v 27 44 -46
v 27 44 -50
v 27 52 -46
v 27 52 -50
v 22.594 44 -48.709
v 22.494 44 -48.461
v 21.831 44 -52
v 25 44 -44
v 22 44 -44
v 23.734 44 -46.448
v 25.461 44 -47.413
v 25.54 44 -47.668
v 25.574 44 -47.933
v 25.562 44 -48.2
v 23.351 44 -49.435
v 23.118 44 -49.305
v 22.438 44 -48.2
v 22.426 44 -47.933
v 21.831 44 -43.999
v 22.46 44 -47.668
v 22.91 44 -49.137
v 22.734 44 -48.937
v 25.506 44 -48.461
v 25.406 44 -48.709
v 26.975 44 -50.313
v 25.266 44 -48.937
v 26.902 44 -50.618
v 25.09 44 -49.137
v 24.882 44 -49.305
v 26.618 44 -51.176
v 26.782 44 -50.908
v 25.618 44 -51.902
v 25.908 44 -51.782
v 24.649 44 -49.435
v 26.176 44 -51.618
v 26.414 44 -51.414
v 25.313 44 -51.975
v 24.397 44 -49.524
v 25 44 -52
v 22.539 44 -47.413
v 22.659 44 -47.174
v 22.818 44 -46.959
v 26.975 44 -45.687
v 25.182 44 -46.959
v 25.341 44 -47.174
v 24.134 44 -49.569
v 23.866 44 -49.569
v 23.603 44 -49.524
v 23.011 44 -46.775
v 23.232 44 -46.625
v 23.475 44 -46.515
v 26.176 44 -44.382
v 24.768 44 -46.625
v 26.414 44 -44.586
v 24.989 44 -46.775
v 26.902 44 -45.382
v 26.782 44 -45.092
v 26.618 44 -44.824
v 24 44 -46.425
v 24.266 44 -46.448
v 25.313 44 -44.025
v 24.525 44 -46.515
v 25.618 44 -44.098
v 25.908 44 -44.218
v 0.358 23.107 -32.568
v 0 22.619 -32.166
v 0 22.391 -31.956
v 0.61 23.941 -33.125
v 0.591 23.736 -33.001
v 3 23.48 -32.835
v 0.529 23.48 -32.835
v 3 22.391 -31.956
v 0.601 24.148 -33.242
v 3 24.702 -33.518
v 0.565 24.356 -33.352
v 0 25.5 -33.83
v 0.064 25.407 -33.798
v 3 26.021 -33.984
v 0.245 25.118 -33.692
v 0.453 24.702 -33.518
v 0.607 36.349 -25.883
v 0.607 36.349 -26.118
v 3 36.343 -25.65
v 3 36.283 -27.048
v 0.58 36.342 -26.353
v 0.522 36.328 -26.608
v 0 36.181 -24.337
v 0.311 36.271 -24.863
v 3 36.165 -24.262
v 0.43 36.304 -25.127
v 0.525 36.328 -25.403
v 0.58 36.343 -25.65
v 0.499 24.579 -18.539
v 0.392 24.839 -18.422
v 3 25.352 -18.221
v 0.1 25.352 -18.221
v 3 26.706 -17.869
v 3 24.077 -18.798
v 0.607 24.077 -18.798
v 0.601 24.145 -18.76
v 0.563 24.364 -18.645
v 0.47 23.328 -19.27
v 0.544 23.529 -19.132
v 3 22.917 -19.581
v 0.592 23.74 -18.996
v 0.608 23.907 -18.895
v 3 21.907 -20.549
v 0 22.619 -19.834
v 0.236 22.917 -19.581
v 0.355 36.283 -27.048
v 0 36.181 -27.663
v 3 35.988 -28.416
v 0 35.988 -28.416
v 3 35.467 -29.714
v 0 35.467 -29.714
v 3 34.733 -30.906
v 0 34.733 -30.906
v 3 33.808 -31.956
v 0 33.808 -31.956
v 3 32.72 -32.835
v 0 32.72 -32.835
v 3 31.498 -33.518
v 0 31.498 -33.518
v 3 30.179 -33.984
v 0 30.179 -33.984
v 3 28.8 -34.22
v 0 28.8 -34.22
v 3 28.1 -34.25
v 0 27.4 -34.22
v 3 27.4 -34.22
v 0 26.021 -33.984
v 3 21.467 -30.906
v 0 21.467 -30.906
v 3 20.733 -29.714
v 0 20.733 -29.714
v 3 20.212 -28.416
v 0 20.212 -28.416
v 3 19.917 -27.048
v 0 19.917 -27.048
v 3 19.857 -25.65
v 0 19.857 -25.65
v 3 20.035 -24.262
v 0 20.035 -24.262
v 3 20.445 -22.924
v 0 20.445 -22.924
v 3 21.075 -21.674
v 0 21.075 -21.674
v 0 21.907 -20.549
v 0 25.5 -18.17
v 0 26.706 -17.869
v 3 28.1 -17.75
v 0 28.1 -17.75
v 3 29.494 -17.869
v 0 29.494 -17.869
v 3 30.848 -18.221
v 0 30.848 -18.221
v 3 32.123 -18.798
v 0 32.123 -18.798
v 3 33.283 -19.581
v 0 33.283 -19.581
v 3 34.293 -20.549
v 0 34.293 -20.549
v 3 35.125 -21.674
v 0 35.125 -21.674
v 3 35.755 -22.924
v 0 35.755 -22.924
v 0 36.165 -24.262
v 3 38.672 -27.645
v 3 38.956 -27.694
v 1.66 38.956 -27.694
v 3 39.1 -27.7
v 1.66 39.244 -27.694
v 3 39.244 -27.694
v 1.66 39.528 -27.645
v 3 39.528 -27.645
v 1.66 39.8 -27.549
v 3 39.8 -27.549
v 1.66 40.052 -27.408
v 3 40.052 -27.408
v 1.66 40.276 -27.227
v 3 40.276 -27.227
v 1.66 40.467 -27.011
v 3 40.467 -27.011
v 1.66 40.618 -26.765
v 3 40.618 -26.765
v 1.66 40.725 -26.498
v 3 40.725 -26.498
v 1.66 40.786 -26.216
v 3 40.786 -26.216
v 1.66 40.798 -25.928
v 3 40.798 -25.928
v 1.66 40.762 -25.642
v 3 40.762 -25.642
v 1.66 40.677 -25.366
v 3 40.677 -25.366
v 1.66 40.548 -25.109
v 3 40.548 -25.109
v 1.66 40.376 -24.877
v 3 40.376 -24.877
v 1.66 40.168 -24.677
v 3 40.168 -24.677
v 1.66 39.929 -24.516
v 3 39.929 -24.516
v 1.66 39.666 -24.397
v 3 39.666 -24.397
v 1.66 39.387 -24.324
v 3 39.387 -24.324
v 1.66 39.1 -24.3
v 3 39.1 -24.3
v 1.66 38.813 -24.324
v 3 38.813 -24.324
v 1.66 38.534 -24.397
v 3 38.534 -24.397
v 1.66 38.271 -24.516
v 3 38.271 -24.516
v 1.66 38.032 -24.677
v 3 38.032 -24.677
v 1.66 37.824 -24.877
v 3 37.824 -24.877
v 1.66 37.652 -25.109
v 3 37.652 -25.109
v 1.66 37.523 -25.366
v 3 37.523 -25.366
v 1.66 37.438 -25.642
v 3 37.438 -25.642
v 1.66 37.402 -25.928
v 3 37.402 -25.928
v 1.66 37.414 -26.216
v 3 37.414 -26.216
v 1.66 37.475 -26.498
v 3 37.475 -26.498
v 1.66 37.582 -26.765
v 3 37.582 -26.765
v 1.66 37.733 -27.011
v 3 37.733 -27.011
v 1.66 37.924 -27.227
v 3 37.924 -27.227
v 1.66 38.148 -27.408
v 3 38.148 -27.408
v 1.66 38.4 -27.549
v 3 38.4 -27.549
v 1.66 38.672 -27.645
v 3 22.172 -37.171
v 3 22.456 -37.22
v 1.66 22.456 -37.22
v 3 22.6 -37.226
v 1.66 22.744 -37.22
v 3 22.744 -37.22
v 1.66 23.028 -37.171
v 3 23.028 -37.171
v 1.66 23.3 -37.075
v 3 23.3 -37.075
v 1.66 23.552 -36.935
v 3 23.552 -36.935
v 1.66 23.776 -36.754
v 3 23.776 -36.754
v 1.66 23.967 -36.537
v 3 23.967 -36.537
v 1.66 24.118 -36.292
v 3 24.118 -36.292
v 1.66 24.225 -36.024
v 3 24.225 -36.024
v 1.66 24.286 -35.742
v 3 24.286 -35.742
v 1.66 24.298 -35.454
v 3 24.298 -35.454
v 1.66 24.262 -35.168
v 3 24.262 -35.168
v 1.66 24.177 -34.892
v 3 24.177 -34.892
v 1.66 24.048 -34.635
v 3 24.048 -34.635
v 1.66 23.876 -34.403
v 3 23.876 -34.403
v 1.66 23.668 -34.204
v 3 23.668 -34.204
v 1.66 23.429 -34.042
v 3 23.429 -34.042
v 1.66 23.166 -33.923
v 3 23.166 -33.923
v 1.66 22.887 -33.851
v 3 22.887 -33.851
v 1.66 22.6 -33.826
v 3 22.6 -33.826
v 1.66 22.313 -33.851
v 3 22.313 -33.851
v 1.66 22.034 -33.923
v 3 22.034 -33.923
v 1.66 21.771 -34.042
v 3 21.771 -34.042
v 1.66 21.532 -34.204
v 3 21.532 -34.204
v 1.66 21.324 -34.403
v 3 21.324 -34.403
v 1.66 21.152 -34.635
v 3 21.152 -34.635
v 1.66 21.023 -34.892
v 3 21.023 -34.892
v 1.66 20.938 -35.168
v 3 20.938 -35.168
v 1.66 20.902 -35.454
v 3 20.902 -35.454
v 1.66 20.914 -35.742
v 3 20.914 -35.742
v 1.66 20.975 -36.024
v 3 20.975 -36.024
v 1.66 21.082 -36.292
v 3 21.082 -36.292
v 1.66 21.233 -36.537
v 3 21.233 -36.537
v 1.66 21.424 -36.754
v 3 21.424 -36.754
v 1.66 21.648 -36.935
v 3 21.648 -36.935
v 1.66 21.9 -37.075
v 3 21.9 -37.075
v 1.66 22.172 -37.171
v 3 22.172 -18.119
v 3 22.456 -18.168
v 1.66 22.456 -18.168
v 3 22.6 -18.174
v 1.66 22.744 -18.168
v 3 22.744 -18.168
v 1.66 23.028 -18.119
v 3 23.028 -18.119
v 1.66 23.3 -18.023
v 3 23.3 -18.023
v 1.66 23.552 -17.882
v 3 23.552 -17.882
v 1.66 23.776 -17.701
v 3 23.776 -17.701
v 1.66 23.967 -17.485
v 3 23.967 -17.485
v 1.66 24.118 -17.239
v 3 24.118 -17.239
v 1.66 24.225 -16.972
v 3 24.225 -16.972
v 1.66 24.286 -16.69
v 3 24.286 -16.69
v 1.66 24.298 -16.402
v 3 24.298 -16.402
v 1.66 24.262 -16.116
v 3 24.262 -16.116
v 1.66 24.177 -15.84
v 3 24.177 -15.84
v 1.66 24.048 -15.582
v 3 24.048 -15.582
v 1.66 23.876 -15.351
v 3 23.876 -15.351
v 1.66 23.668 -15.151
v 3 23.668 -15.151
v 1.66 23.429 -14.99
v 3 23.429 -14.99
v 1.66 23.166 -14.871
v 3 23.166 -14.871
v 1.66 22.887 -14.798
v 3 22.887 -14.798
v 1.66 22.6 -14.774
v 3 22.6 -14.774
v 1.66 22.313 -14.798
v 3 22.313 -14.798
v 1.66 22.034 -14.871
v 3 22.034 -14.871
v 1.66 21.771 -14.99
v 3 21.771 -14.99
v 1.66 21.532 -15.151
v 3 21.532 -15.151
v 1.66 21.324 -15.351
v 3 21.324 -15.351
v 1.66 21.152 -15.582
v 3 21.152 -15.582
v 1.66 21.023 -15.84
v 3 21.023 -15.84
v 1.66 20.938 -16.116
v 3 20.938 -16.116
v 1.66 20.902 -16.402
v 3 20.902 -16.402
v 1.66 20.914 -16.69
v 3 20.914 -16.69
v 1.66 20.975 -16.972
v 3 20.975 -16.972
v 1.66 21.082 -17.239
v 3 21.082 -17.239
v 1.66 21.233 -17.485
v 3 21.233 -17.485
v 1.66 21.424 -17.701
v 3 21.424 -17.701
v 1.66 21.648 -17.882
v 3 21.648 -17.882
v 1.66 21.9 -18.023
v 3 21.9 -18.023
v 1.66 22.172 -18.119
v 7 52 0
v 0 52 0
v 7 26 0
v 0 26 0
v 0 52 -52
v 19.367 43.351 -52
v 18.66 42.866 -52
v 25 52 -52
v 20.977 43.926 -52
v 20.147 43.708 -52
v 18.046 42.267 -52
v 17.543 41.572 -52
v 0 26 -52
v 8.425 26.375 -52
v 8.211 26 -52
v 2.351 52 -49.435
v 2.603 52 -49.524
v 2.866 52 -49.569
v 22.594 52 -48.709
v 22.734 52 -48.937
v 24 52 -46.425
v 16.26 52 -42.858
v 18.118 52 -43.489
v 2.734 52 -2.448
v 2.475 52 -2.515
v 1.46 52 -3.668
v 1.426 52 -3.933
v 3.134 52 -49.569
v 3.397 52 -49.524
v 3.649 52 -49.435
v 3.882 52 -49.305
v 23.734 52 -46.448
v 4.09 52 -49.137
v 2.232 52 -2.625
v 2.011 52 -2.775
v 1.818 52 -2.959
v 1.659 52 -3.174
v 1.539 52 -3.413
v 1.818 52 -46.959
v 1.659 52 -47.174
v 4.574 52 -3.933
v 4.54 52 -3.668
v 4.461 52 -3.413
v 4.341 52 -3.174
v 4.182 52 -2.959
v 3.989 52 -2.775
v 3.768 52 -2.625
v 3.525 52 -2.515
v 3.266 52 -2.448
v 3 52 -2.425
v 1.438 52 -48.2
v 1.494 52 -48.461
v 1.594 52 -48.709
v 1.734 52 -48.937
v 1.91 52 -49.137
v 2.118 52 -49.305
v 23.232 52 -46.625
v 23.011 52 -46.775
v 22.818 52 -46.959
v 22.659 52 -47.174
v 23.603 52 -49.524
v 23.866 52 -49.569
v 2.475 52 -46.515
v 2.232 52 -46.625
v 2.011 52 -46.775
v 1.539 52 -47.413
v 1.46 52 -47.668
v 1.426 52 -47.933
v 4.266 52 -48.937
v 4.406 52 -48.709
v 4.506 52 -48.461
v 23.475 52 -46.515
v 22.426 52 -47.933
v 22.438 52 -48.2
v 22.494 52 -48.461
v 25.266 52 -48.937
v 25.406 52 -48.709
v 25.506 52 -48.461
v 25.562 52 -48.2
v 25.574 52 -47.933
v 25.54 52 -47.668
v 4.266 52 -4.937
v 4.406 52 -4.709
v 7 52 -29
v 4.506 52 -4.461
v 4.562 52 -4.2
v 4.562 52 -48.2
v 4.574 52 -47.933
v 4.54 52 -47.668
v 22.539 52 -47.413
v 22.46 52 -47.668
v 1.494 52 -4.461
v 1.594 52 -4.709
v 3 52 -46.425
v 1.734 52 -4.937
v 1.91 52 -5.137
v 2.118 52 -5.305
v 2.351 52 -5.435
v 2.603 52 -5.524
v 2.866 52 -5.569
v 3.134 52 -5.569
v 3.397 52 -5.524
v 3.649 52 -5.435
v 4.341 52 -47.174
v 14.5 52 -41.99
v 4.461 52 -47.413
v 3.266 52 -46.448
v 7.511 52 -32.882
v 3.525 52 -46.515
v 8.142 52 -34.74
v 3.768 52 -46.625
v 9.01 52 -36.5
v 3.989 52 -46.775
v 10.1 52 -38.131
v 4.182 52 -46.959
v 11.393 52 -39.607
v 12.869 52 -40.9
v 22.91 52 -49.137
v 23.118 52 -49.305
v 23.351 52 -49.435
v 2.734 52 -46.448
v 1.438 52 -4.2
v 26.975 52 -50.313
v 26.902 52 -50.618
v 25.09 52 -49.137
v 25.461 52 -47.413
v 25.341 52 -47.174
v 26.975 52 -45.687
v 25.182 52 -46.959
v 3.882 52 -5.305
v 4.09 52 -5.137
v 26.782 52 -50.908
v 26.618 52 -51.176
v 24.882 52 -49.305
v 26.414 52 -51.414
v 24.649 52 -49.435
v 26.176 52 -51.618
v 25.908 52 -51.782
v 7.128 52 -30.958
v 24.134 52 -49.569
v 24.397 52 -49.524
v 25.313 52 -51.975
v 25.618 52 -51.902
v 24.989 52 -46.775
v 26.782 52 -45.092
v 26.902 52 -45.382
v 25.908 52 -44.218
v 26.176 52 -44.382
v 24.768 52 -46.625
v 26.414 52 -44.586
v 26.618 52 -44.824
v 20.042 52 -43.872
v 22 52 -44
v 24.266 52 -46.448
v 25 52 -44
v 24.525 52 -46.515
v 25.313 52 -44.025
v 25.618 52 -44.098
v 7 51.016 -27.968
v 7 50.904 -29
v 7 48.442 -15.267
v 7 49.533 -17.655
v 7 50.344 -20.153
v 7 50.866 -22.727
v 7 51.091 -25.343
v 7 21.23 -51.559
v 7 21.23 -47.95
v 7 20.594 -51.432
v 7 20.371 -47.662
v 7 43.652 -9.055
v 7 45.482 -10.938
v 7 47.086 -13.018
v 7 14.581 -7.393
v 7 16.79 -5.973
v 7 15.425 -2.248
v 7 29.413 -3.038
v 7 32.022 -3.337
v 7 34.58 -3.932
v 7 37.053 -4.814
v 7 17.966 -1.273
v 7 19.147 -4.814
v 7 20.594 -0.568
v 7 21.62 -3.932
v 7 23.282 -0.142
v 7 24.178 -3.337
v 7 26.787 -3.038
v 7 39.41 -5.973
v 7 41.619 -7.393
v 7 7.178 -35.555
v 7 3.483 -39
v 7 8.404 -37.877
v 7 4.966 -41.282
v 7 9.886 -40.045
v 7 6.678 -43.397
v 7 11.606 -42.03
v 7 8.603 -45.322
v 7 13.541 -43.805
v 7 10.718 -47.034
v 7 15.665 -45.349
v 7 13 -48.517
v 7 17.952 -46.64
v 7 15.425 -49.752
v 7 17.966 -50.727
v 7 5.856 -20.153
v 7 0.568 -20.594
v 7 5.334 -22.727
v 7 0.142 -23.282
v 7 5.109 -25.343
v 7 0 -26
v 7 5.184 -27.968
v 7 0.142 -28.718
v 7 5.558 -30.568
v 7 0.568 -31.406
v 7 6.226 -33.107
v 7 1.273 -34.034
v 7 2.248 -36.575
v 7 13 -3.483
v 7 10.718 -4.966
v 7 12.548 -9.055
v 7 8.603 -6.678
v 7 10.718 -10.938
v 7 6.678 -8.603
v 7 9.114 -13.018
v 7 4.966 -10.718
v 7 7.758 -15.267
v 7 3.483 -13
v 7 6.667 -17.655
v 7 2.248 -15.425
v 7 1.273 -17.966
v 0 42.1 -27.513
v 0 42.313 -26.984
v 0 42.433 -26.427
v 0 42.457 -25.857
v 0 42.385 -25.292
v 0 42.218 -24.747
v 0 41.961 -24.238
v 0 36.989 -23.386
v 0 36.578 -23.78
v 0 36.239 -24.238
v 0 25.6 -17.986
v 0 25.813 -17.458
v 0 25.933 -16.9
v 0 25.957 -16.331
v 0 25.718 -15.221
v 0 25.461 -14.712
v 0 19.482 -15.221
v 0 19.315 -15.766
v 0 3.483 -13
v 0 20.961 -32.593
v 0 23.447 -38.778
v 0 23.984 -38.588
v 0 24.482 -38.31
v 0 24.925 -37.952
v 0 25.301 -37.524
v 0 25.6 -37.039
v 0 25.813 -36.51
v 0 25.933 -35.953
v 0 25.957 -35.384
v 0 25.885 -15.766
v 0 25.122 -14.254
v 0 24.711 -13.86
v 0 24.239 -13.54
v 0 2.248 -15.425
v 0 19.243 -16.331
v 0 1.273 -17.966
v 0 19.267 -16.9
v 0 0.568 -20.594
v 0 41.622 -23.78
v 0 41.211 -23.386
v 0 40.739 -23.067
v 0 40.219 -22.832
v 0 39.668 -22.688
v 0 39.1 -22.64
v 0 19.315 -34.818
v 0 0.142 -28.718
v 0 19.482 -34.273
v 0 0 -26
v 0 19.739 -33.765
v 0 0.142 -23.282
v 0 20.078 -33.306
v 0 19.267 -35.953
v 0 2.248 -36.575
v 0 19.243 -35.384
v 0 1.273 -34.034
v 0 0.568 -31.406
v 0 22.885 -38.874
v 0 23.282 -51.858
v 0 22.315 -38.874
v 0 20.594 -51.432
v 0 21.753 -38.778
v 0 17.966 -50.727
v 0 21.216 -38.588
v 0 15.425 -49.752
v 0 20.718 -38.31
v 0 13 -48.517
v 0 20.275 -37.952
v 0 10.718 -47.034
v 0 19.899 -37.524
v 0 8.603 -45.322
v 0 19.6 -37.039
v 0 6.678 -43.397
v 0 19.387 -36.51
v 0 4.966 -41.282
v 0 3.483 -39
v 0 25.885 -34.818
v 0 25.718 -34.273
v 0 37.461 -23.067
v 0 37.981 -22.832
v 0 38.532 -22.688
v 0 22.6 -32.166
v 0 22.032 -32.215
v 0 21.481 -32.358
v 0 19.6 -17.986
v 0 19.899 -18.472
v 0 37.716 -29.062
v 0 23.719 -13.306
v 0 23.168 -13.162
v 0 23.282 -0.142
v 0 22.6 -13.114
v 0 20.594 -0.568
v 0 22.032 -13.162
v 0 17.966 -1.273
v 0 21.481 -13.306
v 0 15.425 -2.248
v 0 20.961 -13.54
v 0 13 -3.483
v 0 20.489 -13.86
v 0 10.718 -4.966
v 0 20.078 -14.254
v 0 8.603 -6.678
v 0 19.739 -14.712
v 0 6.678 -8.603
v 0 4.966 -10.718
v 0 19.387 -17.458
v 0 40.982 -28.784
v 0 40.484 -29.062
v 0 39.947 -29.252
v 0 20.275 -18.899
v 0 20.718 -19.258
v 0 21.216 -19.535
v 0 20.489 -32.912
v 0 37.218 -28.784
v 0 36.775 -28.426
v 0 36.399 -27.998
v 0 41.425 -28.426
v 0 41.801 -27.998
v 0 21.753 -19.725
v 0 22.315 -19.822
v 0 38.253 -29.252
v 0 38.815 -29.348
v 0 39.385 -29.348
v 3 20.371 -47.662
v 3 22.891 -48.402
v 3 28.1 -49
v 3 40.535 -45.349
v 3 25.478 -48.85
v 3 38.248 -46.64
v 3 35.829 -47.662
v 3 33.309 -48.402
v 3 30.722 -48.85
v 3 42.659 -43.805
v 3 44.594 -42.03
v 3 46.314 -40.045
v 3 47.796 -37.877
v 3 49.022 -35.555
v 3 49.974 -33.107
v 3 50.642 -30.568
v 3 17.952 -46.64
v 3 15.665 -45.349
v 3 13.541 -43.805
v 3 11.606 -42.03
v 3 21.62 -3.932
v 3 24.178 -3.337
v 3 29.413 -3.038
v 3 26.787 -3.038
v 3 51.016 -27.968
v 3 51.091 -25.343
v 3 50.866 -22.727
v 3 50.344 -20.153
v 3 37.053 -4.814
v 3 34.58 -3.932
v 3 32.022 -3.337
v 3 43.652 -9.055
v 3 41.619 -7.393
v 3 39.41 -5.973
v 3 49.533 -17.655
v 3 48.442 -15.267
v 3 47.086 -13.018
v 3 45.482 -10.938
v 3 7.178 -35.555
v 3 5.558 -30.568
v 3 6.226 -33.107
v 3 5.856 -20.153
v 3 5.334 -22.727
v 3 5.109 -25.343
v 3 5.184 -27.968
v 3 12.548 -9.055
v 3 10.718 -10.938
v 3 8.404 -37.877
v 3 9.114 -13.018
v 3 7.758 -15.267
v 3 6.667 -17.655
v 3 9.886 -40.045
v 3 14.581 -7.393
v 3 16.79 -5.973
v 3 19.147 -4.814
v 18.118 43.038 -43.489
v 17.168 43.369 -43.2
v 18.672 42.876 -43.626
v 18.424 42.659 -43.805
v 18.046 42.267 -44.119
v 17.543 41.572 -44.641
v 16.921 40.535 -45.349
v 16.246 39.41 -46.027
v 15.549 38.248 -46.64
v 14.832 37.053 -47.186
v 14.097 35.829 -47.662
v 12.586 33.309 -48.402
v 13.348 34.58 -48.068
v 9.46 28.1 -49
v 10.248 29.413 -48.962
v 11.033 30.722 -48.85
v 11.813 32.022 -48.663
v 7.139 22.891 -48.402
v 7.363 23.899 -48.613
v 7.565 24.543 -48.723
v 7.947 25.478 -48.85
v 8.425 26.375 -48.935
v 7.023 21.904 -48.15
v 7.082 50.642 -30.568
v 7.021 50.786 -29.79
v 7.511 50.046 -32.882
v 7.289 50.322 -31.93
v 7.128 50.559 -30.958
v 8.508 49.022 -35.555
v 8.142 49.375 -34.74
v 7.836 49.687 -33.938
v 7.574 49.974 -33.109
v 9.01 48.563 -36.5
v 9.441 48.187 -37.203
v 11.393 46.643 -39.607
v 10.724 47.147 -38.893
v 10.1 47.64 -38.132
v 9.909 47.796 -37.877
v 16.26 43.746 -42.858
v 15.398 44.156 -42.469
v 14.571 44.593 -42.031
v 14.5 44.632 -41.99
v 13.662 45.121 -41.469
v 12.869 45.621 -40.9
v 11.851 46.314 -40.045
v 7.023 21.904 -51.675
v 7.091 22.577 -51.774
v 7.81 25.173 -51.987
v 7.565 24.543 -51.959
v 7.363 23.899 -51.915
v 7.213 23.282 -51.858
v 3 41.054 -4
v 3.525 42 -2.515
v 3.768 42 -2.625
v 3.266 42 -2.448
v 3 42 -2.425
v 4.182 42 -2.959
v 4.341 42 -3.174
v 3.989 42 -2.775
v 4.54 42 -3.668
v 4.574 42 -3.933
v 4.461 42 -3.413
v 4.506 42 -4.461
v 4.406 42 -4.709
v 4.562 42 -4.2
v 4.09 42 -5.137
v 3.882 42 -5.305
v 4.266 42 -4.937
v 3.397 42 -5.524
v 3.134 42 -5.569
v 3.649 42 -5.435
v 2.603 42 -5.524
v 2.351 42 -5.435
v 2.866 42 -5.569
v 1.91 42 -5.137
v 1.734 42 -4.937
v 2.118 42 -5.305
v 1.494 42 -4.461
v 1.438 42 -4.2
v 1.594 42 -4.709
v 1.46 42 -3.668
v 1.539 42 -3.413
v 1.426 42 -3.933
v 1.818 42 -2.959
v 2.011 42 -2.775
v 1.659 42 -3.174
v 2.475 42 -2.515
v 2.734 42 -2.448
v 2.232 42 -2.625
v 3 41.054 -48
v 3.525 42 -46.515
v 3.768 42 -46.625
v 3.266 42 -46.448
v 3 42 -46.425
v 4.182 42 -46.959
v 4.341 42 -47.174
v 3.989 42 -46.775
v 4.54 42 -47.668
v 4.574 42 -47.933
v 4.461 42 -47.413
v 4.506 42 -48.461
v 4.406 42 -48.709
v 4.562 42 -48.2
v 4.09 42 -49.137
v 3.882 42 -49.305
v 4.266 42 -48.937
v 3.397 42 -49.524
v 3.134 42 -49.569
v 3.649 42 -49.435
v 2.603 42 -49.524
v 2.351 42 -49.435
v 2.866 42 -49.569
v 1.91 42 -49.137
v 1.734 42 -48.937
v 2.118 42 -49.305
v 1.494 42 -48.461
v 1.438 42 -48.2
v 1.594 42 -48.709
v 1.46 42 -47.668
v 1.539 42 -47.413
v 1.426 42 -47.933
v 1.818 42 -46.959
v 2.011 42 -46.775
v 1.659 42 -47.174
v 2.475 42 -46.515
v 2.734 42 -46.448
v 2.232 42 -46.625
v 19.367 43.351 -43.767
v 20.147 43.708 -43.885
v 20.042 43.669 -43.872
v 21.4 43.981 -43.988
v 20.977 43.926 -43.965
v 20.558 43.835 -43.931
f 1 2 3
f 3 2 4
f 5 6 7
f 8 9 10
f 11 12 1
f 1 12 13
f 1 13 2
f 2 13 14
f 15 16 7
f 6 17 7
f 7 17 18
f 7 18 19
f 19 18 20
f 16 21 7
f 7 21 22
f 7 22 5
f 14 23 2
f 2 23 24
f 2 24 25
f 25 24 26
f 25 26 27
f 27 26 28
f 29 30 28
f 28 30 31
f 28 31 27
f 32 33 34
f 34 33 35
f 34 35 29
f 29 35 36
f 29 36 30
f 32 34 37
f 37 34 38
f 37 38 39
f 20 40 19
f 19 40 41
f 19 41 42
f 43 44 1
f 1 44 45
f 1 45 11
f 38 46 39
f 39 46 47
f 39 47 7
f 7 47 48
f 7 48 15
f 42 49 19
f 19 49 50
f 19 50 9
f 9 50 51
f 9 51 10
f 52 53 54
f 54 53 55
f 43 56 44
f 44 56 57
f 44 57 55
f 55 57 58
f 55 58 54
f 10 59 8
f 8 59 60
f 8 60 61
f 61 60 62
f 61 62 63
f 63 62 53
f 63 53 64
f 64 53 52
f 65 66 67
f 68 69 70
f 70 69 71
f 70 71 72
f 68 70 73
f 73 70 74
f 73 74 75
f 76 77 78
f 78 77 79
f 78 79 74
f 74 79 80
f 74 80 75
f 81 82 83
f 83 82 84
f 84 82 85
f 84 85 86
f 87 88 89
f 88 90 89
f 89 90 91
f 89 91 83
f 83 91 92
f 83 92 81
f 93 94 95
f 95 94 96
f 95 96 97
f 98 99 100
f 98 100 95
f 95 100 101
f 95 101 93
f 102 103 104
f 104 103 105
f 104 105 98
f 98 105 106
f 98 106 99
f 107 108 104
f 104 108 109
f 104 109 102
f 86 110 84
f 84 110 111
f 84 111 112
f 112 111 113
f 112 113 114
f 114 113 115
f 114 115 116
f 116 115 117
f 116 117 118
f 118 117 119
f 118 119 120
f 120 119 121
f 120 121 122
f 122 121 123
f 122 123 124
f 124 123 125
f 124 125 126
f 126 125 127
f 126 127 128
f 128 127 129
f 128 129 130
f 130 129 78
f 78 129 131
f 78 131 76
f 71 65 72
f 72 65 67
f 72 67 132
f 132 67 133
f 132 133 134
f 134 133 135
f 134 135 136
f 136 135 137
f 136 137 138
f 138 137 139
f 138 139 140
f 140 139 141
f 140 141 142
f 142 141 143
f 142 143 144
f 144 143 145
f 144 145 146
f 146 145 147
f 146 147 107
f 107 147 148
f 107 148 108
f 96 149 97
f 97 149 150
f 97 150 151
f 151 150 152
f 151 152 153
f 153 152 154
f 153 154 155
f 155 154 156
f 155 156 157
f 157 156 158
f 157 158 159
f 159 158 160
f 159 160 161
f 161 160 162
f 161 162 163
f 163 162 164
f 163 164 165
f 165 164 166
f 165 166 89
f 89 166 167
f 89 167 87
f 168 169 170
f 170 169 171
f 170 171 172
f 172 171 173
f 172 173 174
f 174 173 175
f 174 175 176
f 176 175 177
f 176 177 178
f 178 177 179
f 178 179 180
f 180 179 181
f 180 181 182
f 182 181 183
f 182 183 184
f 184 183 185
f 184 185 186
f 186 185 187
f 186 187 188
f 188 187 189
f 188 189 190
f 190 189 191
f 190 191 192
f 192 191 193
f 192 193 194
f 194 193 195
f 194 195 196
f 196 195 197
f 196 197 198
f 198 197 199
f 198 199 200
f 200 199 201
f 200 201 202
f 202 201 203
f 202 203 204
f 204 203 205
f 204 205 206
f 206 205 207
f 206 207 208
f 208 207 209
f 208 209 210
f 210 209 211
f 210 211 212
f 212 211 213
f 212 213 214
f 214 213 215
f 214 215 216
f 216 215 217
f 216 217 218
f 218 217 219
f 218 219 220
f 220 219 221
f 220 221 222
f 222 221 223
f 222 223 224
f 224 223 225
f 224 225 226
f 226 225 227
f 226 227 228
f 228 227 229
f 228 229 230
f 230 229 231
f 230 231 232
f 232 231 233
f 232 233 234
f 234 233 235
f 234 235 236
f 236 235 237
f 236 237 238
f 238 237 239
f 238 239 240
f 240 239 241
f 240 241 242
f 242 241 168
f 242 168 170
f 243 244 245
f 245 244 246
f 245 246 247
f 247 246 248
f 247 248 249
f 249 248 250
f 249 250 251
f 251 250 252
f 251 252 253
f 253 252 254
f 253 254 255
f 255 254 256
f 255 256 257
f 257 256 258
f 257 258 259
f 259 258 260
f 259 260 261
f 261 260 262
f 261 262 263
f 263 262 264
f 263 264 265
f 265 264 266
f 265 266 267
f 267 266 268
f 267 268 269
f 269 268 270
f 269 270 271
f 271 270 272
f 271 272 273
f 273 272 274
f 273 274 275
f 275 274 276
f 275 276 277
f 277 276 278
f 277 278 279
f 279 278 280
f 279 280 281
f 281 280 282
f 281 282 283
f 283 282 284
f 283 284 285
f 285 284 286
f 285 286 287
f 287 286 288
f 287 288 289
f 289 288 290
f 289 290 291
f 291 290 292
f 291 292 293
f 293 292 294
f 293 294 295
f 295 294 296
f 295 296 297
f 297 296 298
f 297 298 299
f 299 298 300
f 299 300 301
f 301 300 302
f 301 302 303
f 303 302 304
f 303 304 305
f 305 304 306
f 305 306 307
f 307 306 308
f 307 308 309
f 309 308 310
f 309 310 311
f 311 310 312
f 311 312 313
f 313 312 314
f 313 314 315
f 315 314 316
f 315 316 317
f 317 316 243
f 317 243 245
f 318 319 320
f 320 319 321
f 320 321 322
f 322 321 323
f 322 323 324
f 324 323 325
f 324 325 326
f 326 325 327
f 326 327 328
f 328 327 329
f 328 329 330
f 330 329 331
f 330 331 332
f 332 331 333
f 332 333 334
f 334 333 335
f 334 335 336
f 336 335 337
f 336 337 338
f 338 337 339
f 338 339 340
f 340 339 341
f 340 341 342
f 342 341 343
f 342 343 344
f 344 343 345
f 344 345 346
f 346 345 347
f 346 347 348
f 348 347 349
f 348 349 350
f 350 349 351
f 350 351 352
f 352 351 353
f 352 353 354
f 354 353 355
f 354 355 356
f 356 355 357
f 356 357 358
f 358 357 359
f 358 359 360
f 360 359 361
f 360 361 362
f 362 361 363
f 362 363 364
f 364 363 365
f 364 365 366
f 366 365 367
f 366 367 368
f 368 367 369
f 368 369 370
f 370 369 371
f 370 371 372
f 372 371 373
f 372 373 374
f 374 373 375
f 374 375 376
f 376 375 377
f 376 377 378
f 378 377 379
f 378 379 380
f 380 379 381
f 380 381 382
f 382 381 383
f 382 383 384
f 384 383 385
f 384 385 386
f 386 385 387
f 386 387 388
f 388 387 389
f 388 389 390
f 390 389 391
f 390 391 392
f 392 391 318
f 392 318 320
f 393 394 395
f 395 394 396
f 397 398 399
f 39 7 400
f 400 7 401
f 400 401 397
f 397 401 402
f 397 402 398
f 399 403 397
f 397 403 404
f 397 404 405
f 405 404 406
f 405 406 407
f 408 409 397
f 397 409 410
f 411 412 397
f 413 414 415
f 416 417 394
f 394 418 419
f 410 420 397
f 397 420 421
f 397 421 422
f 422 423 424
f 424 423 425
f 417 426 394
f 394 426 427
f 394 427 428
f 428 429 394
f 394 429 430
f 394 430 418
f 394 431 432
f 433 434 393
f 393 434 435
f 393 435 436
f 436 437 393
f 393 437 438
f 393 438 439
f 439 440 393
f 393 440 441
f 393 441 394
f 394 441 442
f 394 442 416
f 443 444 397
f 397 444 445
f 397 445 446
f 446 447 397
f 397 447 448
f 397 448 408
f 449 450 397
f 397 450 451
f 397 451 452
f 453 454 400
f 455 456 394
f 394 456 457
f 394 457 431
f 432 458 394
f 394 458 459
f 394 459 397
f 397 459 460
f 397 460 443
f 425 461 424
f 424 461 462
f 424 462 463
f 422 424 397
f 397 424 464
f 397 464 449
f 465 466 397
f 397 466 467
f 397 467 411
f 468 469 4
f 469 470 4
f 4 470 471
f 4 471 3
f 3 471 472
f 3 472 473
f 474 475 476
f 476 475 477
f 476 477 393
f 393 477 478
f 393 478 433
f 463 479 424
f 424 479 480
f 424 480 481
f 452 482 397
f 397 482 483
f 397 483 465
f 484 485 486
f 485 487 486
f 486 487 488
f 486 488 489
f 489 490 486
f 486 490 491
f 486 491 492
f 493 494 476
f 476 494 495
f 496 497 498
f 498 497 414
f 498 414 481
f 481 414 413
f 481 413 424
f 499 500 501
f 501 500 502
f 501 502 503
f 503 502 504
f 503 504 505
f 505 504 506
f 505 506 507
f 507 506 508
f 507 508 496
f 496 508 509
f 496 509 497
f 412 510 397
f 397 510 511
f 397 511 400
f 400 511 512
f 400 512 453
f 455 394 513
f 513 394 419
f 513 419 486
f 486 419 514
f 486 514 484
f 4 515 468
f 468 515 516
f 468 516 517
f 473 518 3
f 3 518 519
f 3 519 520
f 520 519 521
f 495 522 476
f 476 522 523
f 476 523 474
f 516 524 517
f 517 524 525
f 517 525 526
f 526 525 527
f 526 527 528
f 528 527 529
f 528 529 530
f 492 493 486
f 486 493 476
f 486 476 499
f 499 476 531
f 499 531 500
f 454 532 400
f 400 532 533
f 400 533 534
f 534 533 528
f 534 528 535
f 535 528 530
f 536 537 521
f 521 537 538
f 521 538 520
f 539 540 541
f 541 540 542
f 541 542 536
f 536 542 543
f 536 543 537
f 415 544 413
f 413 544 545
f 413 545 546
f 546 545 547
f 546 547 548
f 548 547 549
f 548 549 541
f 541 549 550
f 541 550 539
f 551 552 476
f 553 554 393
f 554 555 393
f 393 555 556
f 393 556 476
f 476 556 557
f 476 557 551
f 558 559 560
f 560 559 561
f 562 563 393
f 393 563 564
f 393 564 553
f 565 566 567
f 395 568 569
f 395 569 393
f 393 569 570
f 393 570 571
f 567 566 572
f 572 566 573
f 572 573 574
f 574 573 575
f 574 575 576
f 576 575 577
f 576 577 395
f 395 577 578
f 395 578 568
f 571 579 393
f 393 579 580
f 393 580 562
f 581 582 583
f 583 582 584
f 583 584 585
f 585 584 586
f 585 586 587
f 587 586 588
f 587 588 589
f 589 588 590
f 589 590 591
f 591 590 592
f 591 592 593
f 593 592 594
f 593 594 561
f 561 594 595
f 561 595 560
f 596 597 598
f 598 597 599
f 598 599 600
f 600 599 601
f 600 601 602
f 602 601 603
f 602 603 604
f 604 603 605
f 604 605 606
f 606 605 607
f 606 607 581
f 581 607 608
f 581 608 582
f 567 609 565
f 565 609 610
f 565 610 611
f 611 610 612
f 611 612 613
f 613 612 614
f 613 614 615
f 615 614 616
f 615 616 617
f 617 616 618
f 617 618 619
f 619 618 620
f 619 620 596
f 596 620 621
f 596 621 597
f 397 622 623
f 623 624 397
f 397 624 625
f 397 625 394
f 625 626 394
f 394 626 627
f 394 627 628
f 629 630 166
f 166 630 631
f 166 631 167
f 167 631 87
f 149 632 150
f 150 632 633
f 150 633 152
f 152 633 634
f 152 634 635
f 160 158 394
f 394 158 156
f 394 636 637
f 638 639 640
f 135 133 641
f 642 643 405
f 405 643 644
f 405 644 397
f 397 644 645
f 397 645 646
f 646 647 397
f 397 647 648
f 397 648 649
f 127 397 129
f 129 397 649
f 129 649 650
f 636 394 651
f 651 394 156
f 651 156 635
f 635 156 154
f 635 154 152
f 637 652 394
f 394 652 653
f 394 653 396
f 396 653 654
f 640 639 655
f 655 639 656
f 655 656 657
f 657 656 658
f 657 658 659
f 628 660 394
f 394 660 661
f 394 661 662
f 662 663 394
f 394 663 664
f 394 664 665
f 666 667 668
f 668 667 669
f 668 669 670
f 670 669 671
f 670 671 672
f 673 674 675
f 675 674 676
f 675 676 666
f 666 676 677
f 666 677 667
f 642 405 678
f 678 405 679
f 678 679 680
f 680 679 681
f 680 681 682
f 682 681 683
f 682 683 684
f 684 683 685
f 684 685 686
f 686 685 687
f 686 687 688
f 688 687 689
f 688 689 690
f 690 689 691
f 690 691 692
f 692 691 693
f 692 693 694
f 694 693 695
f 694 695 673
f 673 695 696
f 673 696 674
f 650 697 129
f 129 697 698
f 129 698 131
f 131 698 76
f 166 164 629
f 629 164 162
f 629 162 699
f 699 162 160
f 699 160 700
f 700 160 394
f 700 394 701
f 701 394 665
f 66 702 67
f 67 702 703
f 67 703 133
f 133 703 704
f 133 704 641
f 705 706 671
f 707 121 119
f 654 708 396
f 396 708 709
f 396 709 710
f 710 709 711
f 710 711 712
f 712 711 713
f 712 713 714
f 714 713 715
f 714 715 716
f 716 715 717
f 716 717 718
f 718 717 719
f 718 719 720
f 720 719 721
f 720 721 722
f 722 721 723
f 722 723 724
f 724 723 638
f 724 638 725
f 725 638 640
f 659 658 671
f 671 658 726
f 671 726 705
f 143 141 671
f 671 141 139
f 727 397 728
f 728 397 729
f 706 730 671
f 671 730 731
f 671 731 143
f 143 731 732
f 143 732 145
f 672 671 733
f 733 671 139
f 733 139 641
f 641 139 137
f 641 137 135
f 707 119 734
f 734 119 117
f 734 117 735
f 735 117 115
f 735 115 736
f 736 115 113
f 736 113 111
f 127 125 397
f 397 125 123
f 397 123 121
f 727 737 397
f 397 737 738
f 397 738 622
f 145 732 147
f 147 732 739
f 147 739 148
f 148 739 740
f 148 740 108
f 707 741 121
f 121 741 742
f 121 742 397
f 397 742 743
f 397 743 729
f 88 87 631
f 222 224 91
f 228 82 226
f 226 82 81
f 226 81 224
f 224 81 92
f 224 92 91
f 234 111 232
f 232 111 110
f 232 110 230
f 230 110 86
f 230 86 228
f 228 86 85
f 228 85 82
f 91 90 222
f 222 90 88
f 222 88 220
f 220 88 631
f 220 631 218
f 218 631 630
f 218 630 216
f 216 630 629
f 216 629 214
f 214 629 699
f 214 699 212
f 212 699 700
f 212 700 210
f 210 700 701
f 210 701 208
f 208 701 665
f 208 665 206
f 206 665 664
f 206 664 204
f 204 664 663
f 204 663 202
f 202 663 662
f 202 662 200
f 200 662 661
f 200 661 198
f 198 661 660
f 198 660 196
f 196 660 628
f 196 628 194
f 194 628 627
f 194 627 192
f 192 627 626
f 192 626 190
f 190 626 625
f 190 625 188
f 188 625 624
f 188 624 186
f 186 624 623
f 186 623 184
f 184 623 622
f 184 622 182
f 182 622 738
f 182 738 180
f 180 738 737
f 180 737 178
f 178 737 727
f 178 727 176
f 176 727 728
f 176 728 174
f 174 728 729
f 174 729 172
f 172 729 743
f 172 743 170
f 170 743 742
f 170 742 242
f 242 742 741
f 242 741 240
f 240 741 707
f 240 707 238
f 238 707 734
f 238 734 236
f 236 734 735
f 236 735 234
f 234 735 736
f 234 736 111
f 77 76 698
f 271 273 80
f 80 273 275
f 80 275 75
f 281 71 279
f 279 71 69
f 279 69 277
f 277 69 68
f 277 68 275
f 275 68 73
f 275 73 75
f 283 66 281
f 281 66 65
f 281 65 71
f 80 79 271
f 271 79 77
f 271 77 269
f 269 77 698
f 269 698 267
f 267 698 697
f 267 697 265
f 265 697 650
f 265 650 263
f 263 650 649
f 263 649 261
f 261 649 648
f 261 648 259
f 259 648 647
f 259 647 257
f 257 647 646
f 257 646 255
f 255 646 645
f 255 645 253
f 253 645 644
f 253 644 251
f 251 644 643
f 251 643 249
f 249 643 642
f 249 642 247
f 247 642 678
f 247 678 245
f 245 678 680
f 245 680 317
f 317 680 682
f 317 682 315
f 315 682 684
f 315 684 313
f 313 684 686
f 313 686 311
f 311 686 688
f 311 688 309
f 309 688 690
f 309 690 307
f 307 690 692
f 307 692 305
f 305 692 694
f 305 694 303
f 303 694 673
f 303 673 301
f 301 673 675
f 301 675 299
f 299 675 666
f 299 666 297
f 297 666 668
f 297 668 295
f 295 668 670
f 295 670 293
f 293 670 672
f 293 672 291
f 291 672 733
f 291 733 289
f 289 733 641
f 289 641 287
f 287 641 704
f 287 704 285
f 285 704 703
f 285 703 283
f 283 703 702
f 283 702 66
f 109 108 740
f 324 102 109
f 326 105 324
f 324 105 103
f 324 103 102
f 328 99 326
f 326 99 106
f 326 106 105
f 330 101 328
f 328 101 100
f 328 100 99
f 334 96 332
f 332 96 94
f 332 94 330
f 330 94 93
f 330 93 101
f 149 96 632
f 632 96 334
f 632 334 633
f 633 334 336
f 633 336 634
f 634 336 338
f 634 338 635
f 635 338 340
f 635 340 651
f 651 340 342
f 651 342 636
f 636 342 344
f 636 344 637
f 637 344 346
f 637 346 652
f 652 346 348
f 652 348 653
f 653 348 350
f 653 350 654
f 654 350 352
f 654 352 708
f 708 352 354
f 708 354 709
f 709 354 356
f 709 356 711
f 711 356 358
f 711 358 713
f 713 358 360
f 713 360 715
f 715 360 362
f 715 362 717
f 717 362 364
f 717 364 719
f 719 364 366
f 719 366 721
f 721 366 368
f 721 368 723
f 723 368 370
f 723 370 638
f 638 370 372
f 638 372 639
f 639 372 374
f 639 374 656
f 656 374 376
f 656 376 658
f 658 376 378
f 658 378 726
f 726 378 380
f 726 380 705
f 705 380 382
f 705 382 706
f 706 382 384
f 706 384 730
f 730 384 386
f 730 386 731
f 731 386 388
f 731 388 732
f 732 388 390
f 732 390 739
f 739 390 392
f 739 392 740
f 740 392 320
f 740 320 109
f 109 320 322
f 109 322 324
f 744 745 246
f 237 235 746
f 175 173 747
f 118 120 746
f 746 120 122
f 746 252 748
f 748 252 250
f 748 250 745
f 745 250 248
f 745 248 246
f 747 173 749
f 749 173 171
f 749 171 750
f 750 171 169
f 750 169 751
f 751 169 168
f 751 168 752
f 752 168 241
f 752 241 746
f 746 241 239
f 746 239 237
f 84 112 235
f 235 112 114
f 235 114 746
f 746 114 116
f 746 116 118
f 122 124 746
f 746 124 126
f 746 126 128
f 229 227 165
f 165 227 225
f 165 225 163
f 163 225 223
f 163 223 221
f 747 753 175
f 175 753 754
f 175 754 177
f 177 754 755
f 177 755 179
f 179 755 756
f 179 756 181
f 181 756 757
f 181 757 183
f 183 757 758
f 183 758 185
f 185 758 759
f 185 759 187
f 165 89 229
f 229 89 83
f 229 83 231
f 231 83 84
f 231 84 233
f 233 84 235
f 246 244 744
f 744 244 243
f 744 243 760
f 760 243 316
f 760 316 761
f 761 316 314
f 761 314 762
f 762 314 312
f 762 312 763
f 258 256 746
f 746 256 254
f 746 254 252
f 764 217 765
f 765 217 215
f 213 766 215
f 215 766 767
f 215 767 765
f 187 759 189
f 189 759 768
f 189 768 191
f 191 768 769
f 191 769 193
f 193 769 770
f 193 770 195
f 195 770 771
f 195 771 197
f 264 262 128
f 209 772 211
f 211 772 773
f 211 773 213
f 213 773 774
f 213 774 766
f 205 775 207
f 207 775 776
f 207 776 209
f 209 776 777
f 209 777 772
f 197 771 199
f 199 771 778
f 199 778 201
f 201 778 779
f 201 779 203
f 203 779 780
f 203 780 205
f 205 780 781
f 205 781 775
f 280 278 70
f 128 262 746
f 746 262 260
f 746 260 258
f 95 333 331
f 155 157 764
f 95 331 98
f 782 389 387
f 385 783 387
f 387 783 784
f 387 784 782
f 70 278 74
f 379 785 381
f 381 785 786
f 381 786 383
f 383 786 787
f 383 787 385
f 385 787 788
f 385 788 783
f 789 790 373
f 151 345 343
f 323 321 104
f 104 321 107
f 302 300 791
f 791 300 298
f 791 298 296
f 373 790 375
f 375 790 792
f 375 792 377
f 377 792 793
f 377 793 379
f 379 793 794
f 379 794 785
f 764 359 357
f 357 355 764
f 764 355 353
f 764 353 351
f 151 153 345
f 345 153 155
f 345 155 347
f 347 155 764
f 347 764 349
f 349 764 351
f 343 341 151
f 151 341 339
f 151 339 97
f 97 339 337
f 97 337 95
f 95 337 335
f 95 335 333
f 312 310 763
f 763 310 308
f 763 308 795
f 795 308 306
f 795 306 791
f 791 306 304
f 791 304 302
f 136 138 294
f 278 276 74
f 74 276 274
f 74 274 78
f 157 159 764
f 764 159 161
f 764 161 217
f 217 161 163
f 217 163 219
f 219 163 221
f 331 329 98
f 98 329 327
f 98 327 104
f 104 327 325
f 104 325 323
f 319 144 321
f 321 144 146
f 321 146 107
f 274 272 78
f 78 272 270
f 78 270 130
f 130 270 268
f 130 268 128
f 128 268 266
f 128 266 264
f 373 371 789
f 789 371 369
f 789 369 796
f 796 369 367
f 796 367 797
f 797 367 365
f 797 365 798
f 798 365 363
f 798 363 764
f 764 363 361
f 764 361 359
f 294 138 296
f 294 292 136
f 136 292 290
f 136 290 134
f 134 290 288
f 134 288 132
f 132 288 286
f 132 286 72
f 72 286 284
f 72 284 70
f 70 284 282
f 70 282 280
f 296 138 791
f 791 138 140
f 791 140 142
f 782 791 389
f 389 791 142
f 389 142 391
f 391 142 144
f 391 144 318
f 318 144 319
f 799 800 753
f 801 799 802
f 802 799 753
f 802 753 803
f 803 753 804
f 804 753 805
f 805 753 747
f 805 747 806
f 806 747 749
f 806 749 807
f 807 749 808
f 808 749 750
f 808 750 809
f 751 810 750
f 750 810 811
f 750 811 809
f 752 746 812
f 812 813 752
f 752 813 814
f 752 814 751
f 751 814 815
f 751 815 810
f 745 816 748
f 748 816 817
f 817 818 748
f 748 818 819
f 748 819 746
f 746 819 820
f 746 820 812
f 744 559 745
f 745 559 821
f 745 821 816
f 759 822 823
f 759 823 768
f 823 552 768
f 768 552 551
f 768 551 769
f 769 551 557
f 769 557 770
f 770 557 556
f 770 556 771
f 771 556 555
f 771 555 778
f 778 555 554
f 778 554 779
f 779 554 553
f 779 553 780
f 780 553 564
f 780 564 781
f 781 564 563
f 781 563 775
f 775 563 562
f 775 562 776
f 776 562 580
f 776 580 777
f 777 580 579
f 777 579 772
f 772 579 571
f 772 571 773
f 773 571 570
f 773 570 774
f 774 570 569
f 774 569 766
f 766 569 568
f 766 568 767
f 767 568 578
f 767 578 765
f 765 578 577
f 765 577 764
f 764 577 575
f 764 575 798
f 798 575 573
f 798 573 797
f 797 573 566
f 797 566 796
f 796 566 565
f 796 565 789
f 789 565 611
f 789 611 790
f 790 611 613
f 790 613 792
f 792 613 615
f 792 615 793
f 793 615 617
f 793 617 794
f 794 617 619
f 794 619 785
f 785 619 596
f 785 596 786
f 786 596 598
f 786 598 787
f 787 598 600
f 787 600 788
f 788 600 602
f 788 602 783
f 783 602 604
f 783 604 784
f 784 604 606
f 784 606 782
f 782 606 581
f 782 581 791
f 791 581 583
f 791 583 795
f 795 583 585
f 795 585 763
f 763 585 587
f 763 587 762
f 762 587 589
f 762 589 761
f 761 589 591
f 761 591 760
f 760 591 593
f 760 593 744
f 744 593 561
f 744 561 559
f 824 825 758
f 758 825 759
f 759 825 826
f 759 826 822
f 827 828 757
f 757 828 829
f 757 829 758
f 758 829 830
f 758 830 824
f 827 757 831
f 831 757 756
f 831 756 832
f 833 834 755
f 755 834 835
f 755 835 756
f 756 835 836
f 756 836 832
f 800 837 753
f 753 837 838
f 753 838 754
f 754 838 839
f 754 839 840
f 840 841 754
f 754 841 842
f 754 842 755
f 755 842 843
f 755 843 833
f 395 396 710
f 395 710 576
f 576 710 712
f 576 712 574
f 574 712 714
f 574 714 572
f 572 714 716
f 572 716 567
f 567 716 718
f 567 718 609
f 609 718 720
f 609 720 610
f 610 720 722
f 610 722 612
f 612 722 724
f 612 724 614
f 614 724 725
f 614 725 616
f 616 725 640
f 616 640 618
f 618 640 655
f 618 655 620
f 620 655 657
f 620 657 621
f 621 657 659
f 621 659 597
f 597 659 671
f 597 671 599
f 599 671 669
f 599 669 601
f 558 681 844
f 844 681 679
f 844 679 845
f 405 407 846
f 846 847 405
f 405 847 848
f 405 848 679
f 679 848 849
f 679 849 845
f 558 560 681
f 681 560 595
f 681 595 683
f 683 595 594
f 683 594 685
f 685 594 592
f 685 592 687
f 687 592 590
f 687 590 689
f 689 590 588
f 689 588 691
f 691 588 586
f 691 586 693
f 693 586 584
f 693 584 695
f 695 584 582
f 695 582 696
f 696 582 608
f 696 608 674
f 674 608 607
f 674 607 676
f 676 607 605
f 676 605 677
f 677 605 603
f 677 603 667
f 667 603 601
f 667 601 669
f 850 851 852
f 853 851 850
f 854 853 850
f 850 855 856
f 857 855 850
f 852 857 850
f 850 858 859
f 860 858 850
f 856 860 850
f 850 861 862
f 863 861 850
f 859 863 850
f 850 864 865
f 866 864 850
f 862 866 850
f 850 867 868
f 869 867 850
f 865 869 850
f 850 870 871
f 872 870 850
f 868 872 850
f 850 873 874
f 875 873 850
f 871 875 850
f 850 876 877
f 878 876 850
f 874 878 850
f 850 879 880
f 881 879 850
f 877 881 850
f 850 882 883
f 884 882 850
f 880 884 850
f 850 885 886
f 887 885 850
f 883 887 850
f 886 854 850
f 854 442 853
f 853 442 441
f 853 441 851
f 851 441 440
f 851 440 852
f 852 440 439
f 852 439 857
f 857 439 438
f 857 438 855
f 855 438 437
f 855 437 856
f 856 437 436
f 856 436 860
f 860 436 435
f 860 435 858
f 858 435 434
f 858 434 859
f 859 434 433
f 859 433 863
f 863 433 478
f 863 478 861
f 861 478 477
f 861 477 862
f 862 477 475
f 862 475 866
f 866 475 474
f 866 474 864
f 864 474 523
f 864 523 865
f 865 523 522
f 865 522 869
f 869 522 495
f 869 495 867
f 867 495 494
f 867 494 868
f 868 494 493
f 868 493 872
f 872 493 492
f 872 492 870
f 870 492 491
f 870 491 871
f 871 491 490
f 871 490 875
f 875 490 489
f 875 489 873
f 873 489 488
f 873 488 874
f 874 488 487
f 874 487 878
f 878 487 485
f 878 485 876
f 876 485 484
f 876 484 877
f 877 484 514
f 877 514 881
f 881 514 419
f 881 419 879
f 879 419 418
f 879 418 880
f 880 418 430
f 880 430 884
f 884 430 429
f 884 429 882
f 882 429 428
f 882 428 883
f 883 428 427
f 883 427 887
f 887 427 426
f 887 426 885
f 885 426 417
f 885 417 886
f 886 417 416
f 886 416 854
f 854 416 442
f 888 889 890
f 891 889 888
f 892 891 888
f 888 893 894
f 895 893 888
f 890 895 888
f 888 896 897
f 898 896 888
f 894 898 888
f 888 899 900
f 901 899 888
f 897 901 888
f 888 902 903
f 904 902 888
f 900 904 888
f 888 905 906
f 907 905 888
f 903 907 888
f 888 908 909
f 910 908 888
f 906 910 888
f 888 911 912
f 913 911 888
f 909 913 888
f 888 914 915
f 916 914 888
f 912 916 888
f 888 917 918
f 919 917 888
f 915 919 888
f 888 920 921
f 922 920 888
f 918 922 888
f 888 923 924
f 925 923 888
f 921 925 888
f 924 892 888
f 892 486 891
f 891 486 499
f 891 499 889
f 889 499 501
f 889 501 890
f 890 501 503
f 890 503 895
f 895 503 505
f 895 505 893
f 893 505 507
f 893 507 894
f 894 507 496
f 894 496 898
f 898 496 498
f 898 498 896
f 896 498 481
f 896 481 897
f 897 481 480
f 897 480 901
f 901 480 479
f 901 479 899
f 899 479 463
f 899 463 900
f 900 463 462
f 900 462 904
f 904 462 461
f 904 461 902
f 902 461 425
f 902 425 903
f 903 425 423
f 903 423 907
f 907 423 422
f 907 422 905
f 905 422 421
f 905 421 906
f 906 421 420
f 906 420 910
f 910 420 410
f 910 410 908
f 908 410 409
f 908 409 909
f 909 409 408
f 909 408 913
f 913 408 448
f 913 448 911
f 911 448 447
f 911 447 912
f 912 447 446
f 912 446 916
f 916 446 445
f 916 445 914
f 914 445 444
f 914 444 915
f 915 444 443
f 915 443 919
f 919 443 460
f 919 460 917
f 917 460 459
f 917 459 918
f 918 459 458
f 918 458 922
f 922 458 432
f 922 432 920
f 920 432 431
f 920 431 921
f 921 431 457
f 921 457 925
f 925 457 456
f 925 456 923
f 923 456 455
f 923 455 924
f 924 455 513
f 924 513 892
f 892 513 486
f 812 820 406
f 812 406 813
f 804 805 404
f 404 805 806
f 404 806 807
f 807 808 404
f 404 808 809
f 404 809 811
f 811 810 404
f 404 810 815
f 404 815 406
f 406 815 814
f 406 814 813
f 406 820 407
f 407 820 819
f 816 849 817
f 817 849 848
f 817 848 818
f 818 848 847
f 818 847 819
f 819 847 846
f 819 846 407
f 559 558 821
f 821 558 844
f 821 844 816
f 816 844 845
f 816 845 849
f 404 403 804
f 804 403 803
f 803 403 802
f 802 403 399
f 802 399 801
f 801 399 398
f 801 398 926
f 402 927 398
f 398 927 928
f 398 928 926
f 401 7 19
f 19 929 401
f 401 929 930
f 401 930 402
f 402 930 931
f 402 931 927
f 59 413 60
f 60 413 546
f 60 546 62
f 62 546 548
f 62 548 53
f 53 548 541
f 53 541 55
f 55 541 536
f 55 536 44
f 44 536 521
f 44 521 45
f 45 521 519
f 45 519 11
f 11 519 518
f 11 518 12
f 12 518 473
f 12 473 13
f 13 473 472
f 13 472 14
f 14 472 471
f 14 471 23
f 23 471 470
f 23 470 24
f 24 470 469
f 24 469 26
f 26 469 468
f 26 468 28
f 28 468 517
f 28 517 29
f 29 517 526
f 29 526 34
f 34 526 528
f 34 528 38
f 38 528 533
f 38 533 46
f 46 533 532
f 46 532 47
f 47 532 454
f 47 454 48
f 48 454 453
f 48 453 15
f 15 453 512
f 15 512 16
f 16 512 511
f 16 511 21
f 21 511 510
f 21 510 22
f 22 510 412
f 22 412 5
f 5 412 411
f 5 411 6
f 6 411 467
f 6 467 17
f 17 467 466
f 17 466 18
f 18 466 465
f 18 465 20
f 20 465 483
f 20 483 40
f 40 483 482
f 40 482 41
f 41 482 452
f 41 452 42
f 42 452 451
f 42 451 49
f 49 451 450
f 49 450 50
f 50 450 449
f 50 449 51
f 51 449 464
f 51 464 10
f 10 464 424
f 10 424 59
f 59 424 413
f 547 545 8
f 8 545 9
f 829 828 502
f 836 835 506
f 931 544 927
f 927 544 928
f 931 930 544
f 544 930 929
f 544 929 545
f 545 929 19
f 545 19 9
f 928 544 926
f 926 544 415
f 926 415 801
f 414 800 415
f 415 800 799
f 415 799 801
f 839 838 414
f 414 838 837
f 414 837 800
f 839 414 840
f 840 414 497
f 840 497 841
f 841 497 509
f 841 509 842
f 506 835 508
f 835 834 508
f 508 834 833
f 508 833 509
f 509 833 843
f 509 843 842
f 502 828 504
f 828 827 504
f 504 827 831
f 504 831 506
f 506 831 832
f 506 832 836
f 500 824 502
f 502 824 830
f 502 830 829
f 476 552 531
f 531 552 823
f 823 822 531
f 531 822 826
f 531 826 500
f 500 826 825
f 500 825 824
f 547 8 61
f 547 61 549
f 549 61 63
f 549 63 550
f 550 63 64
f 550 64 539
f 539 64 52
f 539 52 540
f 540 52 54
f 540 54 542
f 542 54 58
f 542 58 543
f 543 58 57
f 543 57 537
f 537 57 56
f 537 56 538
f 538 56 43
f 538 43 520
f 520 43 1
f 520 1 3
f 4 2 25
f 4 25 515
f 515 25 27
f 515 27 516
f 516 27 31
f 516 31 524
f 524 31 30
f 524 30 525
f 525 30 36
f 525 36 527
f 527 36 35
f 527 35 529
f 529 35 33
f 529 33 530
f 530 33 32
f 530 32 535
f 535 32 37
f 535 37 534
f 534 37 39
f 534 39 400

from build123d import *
from OCP.BRepFilletAPI import BRepFilletAPI_MakeChamfer

# Parameters (mm, degrees)
ESBO_O1_W                                      = 52
ESBO_O1_H                                      = 52
RESSALTO_EXTRUS_O1_DEPTH                       = 7
ESBO_O2_R                                      = 8.25
CORTE_EXTRUS_O1_DEPTH                          = 74.87151007
ESCAREADO_PARA_SFHCS_M31_D                     = 3.4
ESCAREADO_PARA_SFHCS_M31_CSINK_D               = 6.72
ESCAREADO_PARA_SFHCS_M31_CSINK_ANGLE           = 90
PADR_OCIRCULAR1_COUNT                          = 3
ESBO_O27_R                                     = 23
CORTE_EXTRUS_O5_DEPTH                          = 4
FILETE1_R                                      = 26
FURO_ROSCADO_PARA_CONDU_TE_DE_M3X0_51_AT_COUNT = 2
FURO_ROSCADO_PARA_CONDU_TE_DE_M3X0_51_AT_PITCH = 44
ESBO_O35_W                                     = 20
ESBO_O35_H                                     = 52
RESSALTO_EXTRUS_O2_DEPTH                       = 8
ESBO_O37_R                                     = 23
CORTE_EXTRUS_O6_DEPTH                          = 77.210235533
CHANFRO1_SIZE                                  = 12
CHANFRO1_SIZE2                                 = 20
FILETE2_R                                      = 10
FILETE3_R                                      = 5
CORTE_EXTRUS_O7_REACH                          = 80.339
ESBO_O39_W                                     = 20
ESBO_O39_H                                     = 36
FILETE5_R                                      = 15
FILETE6_R                                      = 2
CORTE_EXTRUS_O8_REACH                          = 80.339
ESBO_O40_W                                     = 32.243724172
ESBO_O40_H                                     = 53.230333596


with BuildPart() as part:
    # Esboço1 → Ressalto-extrusão1 (new body)
    with BuildSketch(Plane(origin=(0, 0, 0), x_dir=(0, 0, -1), z_dir=(1, 0, 0))):
        with Locations((26, 26)):
            Rectangle(ESBO_O1_W, ESBO_O1_H)
    extrude(amount=RESSALTO_EXTRUS_O1_DEPTH)

    # Esboço2 → Corte-extrusão1 (cut, through all)
    with BuildSketch(Plane.ZY):
        with Locations((-26, 28.1)):
            Circle(ESBO_O2_R)
    extrude(amount=-CORTE_EXTRUS_O1_DEPTH, mode=Mode.SUBTRACT)

    # Escareado para SFHCS M31 (through all)
    with Locations(Plane.ZY):
        with Locations((-26, 39.1)):
            escareado_para_sfhcs_m31 = CounterSinkHole(ESCAREADO_PARA_SFHCS_M31_D / 2, ESCAREADO_PARA_SFHCS_M31_CSINK_D / 2, counter_sink_angle=ESCAREADO_PARA_SFHCS_M31_CSINK_ANGLE)

    # PadrãoCircular1: Escareado para SFHCS M31 ×3 about axis
    padr_ocircular1_axis = Axis((0, 28.1, -26), (1, 0, 0))
    for i in range(1, PADR_OCIRCULAR1_COUNT):
        add(escareado_para_sfhcs_m31.rotate(padr_ocircular1_axis, i * 360 / PADR_OCIRCULAR1_COUNT), mode=Mode.SUBTRACT)

    # Esboço27 → Corte-extrusão5 (cut)
    with BuildSketch(Plane(origin=(7, 0, 0), x_dir=(0, 0, -1), z_dir=(1, 0, 0))):
        with Locations((26, 28.1)):
            Circle(ESBO_O27_R)
    extrude(amount=-CORTE_EXTRUS_O5_DEPTH, mode=Mode.SUBTRACT)

    # Filete1
    filete1_edges = [part.edges().sort_by_distance(p)[0] for p in [
        (3.5, 0, -52),
        (3.5, 0, 0),
    ]]
    fillet(filete1_edges, radius=FILETE1_R - 0.0001)  # a hair under: the kernel refuses the full size

    # Esboço34 → Furo roscado para conduíte de M3x0.51 (revolve, cut)
    with BuildSketch(Plane(origin=(3, 52, -48), x_dir=(0, 0, 1), z_dir=(1, 0, 0))):
        Polygon((0, 0), (0, 10.946355475), (1.575, 10), (1.575, 0), align=None)
    furo_roscado_para_condu_te_de_m3x0_51 = revolve(axis=Axis((3, 58.35, -48), (0, -1, 0)), mode=Mode.SUBTRACT)

    # Furo roscado para conduíte de M3x0.51 at: Furo roscado para conduíte de M3x0.51 ×2
    with Locations(*[(0, 0, i * FURO_ROSCADO_PARA_CONDU_TE_DE_M3X0_51_AT_PITCH) for i in range(1, FURO_ROSCADO_PARA_CONDU_TE_DE_M3X0_51_AT_COUNT)]):
        add(furo_roscado_para_condu_te_de_m3x0_51, mode=Mode.SUBTRACT)

    # Esboço35 → Ressalto-extrusão2 (add)
    with BuildSketch(Plane(origin=(0, 52, 0), x_dir=(1, 0, 0), z_dir=(0, 1, 0))):
        with Locations((17, 26)):
            Rectangle(ESBO_O35_W, ESBO_O35_H)
    extrude(amount=-RESSALTO_EXTRUS_O2_DEPTH)

    # Esboço37 → Corte-extrusão6 (cut, through all)
    with BuildSketch(Plane(origin=(7, 0, 0), x_dir=(0, 0, -1), z_dir=(1, 0, 0))):
        with Locations((26, 28.1)):
            Circle(ESBO_O37_R)
    extrude(amount=CORTE_EXTRUS_O6_DEPTH, mode=Mode.SUBTRACT)

    # Chanfro1: one chamfer whose edges measure the first distance from different faces: ONE call of the kernel's chamfer builder (chamfer() names one face for all edges)
    chanfro1_edges_1 = [part.edges().sort_by_distance(p)[0] for p in [
        (7, 44, -47.309482535),
    ]]
    chanfro1_side_1 = [part.faces().sort_by_distance(p)[0] for p in [
        (17, 44, -47.309482535),
    ]]
    chanfro1_edges_2 = [part.edges().sort_by_distance(p)[0] for p in [
        (7, 44, -4.690517465),
    ]]
    chanfro1_side_2 = [part.faces().sort_by_distance(p)[0] for p in [
        (17, 44, -4.690517465),
    ]]
    chanfro1 = BRepFilletAPI_MakeChamfer(part.part.solid().wrapped)
    for e in chanfro1_edges_1:
        chanfro1.Add(CHANFRO1_SIZE, CHANFRO1_SIZE2, e.wrapped, chanfro1_side_1[0].wrapped)  # the first distance lies on this face
    for e in chanfro1_edges_2:
        chanfro1.Add(CHANFRO1_SIZE, CHANFRO1_SIZE2, e.wrapped, chanfro1_side_2[0].wrapped)  # the first distance lies on this face
    add(Compound.cast(chanfro1.Shape()), mode=Mode.REPLACE)

    # Filete2
    filete2_edges = [part.edges().sort_by_distance(p)[0] for p in [
        (7, 24, -1.722707367),
        (7, 24, -50.277292633),
    ]]
    fillet(filete2_edges, radius=FILETE2_R)

    # Filete3
    filete3_edges = [part.edges().sort_by_distance(p)[0] for p in [
        (19, 44, -4.690517465),
        (19, 44, -47.309482535),
    ]]
    fillet(filete3_edges, radius=FILETE3_R)

    # Espelhar1: Furo roscado para conduíte de M3x0.51 across plane
    add(furo_roscado_para_condu_te_de_m3x0_51.mirror(Plane.ZY.offset(-13.5)), mode=Mode.SUBTRACT)

    # Espelhar1 copy 1 sketch → Espelhar1 copy 1 (revolve, cut)
    with BuildSketch(Plane(origin=(24, 52, -4), x_dir=(0, 0, 1), z_dir=(-1, 0, 0))):
        Polygon((0, 0), (0, -10.946355475), (1.575, -10), (1.575, 0), align=None)
    revolve(axis=Axis((24, 58.35, -4), (0, 1, 0)), mode=Mode.SUBTRACT)

    # Esboço39 → Corte-extrusão7 (cut, up to next)
    with BuildSketch(Plane(origin=(0, 52, 0), x_dir=(1, 0, 0), z_dir=(0, 1, 0)), mode=Mode.PRIVATE) as corte_extrus_o7_sk1:
        with Locations((17, 26)):
            Rectangle(ESBO_O39_W, ESBO_O39_H)
    corte_extrus_o7_tool1 = extrude(corte_extrus_o7_sk1.sketch, amount=-CORTE_EXTRUS_O7_REACH, mode=Mode.PRIVATE) & part.part
    add(corte_extrus_o7_tool1.solids().sort_by_distance((17, 52, -26))[0], mode=Mode.SUBTRACT)

    # Filete5
    filete5_edges = [part.edges().sort_by_distance(p)[0] for p in [
        (7, 47.208910532, -44),
        (7, 47.208910532, -8),
    ]]
    fillet(filete5_edges, radius=FILETE5_R)

    # Filete6
    filete6_edges = [part.edges().sort_by_distance(p)[0] for p in [
        (27, 48, -44),
        (27, 48, -8),
        (27, 48, -52),
        (27, 48, 0),
    ]]
    fillet(filete6_edges, radius=FILETE6_R)

    # Esboço40 → Corte-extrusão8 (cut, up to next)
    with BuildSketch(Plane.XY, mode=Mode.PRIVATE) as corte_extrus_o8_sk1:
        with Locations((23.121862086, 26.615166798)):
            Rectangle(ESBO_O40_W, ESBO_O40_H)
    corte_extrus_o8_tool1 = extrude(corte_extrus_o8_sk1.sketch, amount=-CORTE_EXTRUS_O8_REACH, mode=Mode.PRIVATE) & part.part
    add(corte_extrus_o8_tool1.solids().sort_by_distance((23.121862, 26.615167, 0))[0], mode=Mode.SUBTRACT)


solid = part.part
